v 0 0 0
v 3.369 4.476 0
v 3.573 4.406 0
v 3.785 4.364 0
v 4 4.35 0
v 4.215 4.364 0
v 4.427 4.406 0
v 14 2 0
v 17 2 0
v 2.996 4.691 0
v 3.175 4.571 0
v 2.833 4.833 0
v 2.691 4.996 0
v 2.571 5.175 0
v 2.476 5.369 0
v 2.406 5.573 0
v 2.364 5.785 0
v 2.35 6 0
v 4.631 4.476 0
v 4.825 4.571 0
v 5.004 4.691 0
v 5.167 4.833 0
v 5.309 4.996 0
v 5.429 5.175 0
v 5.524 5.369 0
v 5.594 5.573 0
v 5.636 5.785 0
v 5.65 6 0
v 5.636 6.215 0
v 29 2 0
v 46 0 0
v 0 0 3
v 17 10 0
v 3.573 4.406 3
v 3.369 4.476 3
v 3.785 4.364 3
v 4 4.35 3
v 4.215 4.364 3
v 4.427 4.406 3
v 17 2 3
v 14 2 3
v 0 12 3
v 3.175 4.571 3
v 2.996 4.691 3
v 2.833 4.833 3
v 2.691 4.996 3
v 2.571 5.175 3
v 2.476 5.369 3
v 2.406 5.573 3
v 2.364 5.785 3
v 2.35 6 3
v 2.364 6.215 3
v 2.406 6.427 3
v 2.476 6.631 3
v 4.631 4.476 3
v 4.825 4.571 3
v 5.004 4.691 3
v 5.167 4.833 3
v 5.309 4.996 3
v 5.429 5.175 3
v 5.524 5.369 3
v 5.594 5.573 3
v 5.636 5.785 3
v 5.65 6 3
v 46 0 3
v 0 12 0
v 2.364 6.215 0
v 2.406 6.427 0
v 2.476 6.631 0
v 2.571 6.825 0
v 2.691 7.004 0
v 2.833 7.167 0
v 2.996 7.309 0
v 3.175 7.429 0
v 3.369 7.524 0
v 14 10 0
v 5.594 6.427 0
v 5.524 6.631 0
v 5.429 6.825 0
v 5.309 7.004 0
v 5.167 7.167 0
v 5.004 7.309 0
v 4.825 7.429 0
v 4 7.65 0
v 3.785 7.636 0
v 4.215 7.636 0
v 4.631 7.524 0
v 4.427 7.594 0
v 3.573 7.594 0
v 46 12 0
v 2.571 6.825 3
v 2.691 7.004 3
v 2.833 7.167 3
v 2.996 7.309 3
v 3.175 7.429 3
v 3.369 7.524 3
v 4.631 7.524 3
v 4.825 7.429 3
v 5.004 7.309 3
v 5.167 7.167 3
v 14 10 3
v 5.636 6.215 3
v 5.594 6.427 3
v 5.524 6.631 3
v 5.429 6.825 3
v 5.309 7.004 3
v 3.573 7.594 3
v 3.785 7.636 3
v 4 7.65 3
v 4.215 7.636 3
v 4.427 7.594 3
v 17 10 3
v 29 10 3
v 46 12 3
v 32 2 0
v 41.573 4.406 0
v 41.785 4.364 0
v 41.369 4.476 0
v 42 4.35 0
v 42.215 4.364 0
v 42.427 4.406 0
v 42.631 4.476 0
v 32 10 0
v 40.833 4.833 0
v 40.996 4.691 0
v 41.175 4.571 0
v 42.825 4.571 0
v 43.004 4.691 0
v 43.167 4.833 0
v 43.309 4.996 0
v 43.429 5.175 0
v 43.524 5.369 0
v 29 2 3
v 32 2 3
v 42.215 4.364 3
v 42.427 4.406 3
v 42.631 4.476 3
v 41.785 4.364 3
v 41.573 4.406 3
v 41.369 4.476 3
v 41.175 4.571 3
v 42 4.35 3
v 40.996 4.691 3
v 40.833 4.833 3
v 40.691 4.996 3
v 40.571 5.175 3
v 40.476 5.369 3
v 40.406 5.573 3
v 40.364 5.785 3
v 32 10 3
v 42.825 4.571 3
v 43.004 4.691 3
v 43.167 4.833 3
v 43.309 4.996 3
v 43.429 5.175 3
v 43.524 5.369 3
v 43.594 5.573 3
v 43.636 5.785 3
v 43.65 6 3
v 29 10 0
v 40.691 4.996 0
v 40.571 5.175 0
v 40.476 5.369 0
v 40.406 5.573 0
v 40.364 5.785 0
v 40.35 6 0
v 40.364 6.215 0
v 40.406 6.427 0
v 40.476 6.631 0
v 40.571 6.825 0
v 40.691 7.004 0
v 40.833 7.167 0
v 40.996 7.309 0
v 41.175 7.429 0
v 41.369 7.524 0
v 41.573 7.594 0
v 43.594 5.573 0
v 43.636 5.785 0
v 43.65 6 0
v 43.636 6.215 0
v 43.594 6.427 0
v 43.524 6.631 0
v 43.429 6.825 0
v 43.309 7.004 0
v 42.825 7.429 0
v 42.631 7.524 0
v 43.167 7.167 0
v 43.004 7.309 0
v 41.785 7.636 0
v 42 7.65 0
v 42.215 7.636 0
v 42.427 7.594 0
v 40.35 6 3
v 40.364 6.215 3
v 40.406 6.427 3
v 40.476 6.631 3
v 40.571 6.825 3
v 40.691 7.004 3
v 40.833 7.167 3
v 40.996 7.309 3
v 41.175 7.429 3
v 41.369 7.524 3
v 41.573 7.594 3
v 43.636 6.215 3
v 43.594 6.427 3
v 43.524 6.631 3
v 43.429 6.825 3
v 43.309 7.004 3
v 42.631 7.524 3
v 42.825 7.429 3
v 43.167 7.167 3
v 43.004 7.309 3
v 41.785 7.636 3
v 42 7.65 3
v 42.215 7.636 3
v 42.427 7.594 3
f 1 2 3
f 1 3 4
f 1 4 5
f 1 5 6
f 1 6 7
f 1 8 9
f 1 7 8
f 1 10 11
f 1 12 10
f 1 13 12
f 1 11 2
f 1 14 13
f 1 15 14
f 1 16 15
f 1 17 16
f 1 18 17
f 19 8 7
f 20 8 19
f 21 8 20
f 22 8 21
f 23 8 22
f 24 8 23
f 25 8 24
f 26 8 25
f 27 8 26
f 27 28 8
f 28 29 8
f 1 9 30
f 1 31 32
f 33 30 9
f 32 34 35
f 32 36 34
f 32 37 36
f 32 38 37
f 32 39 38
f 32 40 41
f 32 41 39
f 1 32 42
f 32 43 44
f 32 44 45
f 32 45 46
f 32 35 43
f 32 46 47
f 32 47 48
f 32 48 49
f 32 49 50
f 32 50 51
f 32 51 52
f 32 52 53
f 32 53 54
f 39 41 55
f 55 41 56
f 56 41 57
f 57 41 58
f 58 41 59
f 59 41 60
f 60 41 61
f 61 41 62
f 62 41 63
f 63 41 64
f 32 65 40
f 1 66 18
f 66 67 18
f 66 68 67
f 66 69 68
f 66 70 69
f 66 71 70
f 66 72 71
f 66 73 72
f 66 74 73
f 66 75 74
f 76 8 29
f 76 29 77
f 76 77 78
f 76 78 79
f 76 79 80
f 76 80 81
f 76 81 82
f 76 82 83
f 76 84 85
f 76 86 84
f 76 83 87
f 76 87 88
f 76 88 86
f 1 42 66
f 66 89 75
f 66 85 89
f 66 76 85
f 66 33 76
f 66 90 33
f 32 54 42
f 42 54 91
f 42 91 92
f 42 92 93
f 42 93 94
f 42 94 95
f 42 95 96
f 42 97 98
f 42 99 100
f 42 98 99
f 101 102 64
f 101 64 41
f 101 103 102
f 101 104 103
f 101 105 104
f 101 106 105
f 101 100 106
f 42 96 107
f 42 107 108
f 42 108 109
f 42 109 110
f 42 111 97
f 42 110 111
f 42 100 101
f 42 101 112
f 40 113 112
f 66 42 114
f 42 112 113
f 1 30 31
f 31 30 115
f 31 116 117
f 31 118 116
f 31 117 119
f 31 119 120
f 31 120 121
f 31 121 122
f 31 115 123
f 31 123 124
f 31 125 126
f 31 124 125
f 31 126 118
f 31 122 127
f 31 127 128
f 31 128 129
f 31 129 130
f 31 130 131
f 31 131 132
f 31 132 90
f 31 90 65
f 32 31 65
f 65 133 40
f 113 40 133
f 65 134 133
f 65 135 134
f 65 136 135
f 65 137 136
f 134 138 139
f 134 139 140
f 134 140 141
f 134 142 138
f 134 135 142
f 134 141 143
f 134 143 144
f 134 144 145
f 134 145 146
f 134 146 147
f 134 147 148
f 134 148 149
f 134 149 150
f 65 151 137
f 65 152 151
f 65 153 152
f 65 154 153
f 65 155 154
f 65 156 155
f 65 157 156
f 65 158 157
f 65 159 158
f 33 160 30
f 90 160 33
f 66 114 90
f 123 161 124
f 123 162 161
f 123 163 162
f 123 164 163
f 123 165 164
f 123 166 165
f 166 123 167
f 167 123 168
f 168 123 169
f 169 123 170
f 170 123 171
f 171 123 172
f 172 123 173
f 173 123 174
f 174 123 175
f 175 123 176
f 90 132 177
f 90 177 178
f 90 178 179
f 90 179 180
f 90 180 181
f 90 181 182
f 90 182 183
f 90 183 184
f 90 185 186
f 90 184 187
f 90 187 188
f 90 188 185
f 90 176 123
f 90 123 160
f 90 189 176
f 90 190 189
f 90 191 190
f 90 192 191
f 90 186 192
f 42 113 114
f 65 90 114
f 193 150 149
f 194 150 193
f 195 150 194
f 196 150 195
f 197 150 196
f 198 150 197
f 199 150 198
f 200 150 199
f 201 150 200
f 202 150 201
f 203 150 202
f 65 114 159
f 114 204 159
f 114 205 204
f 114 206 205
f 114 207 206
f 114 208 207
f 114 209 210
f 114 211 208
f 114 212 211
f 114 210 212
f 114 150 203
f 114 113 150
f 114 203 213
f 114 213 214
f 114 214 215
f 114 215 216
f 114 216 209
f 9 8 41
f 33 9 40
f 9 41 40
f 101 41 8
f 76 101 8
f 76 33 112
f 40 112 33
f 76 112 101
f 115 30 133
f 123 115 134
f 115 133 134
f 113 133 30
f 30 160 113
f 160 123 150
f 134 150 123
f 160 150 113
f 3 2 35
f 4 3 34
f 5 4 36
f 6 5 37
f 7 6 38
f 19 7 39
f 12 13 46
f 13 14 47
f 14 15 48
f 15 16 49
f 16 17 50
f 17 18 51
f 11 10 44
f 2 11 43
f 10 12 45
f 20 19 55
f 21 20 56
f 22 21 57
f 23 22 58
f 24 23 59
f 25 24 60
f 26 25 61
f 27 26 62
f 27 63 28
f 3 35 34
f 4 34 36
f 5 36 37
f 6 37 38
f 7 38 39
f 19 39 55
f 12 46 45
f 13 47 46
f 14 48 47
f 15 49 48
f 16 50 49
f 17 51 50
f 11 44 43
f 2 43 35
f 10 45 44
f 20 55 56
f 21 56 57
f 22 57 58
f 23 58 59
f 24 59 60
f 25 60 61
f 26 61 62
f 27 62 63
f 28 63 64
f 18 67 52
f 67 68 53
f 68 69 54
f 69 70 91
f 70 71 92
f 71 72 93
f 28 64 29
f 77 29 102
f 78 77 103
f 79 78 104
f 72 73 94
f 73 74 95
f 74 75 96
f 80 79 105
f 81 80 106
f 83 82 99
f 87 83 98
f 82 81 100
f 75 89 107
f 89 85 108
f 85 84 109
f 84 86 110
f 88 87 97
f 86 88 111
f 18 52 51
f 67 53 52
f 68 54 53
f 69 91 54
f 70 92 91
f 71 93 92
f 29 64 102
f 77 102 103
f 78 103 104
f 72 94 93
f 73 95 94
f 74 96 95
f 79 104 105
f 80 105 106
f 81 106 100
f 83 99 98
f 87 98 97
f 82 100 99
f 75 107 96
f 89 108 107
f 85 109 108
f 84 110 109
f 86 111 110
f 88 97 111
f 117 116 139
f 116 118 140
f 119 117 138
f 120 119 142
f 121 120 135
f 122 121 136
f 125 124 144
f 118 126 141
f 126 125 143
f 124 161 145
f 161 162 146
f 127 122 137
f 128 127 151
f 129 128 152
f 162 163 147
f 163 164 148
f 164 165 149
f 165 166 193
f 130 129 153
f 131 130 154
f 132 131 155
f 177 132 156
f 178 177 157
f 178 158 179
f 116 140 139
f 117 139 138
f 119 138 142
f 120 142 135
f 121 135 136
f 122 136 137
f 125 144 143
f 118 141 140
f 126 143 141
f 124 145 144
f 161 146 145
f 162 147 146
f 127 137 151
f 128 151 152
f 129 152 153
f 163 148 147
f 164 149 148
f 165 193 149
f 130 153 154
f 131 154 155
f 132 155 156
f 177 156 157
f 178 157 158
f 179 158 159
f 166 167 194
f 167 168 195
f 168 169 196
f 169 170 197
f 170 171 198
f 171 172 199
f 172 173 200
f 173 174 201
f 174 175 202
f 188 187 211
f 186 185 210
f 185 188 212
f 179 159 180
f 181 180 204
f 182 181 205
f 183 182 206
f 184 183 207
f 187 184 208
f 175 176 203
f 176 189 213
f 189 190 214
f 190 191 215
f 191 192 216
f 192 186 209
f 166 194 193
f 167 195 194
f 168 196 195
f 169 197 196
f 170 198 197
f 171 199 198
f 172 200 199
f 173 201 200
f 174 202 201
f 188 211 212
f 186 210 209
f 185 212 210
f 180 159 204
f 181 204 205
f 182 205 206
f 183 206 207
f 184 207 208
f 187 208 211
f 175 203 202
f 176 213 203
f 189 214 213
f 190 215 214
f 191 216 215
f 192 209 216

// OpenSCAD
// GENERATED. MC2 trial geometry in mm.
difference() {
cube([46,12,3]);
translate([14, 2, -0.1]) { cube([3,8,3.2]); }
translate([29, 2, -0.1]) { cube([3,8,3.2]); }
translate([4, 6, -0.1]) { cylinder(d=3.3,h=3.2,$fn=48); }
translate([42, 6, -0.1]) { cylinder(d=3.3,h=3.2,$fn=48); }
}
